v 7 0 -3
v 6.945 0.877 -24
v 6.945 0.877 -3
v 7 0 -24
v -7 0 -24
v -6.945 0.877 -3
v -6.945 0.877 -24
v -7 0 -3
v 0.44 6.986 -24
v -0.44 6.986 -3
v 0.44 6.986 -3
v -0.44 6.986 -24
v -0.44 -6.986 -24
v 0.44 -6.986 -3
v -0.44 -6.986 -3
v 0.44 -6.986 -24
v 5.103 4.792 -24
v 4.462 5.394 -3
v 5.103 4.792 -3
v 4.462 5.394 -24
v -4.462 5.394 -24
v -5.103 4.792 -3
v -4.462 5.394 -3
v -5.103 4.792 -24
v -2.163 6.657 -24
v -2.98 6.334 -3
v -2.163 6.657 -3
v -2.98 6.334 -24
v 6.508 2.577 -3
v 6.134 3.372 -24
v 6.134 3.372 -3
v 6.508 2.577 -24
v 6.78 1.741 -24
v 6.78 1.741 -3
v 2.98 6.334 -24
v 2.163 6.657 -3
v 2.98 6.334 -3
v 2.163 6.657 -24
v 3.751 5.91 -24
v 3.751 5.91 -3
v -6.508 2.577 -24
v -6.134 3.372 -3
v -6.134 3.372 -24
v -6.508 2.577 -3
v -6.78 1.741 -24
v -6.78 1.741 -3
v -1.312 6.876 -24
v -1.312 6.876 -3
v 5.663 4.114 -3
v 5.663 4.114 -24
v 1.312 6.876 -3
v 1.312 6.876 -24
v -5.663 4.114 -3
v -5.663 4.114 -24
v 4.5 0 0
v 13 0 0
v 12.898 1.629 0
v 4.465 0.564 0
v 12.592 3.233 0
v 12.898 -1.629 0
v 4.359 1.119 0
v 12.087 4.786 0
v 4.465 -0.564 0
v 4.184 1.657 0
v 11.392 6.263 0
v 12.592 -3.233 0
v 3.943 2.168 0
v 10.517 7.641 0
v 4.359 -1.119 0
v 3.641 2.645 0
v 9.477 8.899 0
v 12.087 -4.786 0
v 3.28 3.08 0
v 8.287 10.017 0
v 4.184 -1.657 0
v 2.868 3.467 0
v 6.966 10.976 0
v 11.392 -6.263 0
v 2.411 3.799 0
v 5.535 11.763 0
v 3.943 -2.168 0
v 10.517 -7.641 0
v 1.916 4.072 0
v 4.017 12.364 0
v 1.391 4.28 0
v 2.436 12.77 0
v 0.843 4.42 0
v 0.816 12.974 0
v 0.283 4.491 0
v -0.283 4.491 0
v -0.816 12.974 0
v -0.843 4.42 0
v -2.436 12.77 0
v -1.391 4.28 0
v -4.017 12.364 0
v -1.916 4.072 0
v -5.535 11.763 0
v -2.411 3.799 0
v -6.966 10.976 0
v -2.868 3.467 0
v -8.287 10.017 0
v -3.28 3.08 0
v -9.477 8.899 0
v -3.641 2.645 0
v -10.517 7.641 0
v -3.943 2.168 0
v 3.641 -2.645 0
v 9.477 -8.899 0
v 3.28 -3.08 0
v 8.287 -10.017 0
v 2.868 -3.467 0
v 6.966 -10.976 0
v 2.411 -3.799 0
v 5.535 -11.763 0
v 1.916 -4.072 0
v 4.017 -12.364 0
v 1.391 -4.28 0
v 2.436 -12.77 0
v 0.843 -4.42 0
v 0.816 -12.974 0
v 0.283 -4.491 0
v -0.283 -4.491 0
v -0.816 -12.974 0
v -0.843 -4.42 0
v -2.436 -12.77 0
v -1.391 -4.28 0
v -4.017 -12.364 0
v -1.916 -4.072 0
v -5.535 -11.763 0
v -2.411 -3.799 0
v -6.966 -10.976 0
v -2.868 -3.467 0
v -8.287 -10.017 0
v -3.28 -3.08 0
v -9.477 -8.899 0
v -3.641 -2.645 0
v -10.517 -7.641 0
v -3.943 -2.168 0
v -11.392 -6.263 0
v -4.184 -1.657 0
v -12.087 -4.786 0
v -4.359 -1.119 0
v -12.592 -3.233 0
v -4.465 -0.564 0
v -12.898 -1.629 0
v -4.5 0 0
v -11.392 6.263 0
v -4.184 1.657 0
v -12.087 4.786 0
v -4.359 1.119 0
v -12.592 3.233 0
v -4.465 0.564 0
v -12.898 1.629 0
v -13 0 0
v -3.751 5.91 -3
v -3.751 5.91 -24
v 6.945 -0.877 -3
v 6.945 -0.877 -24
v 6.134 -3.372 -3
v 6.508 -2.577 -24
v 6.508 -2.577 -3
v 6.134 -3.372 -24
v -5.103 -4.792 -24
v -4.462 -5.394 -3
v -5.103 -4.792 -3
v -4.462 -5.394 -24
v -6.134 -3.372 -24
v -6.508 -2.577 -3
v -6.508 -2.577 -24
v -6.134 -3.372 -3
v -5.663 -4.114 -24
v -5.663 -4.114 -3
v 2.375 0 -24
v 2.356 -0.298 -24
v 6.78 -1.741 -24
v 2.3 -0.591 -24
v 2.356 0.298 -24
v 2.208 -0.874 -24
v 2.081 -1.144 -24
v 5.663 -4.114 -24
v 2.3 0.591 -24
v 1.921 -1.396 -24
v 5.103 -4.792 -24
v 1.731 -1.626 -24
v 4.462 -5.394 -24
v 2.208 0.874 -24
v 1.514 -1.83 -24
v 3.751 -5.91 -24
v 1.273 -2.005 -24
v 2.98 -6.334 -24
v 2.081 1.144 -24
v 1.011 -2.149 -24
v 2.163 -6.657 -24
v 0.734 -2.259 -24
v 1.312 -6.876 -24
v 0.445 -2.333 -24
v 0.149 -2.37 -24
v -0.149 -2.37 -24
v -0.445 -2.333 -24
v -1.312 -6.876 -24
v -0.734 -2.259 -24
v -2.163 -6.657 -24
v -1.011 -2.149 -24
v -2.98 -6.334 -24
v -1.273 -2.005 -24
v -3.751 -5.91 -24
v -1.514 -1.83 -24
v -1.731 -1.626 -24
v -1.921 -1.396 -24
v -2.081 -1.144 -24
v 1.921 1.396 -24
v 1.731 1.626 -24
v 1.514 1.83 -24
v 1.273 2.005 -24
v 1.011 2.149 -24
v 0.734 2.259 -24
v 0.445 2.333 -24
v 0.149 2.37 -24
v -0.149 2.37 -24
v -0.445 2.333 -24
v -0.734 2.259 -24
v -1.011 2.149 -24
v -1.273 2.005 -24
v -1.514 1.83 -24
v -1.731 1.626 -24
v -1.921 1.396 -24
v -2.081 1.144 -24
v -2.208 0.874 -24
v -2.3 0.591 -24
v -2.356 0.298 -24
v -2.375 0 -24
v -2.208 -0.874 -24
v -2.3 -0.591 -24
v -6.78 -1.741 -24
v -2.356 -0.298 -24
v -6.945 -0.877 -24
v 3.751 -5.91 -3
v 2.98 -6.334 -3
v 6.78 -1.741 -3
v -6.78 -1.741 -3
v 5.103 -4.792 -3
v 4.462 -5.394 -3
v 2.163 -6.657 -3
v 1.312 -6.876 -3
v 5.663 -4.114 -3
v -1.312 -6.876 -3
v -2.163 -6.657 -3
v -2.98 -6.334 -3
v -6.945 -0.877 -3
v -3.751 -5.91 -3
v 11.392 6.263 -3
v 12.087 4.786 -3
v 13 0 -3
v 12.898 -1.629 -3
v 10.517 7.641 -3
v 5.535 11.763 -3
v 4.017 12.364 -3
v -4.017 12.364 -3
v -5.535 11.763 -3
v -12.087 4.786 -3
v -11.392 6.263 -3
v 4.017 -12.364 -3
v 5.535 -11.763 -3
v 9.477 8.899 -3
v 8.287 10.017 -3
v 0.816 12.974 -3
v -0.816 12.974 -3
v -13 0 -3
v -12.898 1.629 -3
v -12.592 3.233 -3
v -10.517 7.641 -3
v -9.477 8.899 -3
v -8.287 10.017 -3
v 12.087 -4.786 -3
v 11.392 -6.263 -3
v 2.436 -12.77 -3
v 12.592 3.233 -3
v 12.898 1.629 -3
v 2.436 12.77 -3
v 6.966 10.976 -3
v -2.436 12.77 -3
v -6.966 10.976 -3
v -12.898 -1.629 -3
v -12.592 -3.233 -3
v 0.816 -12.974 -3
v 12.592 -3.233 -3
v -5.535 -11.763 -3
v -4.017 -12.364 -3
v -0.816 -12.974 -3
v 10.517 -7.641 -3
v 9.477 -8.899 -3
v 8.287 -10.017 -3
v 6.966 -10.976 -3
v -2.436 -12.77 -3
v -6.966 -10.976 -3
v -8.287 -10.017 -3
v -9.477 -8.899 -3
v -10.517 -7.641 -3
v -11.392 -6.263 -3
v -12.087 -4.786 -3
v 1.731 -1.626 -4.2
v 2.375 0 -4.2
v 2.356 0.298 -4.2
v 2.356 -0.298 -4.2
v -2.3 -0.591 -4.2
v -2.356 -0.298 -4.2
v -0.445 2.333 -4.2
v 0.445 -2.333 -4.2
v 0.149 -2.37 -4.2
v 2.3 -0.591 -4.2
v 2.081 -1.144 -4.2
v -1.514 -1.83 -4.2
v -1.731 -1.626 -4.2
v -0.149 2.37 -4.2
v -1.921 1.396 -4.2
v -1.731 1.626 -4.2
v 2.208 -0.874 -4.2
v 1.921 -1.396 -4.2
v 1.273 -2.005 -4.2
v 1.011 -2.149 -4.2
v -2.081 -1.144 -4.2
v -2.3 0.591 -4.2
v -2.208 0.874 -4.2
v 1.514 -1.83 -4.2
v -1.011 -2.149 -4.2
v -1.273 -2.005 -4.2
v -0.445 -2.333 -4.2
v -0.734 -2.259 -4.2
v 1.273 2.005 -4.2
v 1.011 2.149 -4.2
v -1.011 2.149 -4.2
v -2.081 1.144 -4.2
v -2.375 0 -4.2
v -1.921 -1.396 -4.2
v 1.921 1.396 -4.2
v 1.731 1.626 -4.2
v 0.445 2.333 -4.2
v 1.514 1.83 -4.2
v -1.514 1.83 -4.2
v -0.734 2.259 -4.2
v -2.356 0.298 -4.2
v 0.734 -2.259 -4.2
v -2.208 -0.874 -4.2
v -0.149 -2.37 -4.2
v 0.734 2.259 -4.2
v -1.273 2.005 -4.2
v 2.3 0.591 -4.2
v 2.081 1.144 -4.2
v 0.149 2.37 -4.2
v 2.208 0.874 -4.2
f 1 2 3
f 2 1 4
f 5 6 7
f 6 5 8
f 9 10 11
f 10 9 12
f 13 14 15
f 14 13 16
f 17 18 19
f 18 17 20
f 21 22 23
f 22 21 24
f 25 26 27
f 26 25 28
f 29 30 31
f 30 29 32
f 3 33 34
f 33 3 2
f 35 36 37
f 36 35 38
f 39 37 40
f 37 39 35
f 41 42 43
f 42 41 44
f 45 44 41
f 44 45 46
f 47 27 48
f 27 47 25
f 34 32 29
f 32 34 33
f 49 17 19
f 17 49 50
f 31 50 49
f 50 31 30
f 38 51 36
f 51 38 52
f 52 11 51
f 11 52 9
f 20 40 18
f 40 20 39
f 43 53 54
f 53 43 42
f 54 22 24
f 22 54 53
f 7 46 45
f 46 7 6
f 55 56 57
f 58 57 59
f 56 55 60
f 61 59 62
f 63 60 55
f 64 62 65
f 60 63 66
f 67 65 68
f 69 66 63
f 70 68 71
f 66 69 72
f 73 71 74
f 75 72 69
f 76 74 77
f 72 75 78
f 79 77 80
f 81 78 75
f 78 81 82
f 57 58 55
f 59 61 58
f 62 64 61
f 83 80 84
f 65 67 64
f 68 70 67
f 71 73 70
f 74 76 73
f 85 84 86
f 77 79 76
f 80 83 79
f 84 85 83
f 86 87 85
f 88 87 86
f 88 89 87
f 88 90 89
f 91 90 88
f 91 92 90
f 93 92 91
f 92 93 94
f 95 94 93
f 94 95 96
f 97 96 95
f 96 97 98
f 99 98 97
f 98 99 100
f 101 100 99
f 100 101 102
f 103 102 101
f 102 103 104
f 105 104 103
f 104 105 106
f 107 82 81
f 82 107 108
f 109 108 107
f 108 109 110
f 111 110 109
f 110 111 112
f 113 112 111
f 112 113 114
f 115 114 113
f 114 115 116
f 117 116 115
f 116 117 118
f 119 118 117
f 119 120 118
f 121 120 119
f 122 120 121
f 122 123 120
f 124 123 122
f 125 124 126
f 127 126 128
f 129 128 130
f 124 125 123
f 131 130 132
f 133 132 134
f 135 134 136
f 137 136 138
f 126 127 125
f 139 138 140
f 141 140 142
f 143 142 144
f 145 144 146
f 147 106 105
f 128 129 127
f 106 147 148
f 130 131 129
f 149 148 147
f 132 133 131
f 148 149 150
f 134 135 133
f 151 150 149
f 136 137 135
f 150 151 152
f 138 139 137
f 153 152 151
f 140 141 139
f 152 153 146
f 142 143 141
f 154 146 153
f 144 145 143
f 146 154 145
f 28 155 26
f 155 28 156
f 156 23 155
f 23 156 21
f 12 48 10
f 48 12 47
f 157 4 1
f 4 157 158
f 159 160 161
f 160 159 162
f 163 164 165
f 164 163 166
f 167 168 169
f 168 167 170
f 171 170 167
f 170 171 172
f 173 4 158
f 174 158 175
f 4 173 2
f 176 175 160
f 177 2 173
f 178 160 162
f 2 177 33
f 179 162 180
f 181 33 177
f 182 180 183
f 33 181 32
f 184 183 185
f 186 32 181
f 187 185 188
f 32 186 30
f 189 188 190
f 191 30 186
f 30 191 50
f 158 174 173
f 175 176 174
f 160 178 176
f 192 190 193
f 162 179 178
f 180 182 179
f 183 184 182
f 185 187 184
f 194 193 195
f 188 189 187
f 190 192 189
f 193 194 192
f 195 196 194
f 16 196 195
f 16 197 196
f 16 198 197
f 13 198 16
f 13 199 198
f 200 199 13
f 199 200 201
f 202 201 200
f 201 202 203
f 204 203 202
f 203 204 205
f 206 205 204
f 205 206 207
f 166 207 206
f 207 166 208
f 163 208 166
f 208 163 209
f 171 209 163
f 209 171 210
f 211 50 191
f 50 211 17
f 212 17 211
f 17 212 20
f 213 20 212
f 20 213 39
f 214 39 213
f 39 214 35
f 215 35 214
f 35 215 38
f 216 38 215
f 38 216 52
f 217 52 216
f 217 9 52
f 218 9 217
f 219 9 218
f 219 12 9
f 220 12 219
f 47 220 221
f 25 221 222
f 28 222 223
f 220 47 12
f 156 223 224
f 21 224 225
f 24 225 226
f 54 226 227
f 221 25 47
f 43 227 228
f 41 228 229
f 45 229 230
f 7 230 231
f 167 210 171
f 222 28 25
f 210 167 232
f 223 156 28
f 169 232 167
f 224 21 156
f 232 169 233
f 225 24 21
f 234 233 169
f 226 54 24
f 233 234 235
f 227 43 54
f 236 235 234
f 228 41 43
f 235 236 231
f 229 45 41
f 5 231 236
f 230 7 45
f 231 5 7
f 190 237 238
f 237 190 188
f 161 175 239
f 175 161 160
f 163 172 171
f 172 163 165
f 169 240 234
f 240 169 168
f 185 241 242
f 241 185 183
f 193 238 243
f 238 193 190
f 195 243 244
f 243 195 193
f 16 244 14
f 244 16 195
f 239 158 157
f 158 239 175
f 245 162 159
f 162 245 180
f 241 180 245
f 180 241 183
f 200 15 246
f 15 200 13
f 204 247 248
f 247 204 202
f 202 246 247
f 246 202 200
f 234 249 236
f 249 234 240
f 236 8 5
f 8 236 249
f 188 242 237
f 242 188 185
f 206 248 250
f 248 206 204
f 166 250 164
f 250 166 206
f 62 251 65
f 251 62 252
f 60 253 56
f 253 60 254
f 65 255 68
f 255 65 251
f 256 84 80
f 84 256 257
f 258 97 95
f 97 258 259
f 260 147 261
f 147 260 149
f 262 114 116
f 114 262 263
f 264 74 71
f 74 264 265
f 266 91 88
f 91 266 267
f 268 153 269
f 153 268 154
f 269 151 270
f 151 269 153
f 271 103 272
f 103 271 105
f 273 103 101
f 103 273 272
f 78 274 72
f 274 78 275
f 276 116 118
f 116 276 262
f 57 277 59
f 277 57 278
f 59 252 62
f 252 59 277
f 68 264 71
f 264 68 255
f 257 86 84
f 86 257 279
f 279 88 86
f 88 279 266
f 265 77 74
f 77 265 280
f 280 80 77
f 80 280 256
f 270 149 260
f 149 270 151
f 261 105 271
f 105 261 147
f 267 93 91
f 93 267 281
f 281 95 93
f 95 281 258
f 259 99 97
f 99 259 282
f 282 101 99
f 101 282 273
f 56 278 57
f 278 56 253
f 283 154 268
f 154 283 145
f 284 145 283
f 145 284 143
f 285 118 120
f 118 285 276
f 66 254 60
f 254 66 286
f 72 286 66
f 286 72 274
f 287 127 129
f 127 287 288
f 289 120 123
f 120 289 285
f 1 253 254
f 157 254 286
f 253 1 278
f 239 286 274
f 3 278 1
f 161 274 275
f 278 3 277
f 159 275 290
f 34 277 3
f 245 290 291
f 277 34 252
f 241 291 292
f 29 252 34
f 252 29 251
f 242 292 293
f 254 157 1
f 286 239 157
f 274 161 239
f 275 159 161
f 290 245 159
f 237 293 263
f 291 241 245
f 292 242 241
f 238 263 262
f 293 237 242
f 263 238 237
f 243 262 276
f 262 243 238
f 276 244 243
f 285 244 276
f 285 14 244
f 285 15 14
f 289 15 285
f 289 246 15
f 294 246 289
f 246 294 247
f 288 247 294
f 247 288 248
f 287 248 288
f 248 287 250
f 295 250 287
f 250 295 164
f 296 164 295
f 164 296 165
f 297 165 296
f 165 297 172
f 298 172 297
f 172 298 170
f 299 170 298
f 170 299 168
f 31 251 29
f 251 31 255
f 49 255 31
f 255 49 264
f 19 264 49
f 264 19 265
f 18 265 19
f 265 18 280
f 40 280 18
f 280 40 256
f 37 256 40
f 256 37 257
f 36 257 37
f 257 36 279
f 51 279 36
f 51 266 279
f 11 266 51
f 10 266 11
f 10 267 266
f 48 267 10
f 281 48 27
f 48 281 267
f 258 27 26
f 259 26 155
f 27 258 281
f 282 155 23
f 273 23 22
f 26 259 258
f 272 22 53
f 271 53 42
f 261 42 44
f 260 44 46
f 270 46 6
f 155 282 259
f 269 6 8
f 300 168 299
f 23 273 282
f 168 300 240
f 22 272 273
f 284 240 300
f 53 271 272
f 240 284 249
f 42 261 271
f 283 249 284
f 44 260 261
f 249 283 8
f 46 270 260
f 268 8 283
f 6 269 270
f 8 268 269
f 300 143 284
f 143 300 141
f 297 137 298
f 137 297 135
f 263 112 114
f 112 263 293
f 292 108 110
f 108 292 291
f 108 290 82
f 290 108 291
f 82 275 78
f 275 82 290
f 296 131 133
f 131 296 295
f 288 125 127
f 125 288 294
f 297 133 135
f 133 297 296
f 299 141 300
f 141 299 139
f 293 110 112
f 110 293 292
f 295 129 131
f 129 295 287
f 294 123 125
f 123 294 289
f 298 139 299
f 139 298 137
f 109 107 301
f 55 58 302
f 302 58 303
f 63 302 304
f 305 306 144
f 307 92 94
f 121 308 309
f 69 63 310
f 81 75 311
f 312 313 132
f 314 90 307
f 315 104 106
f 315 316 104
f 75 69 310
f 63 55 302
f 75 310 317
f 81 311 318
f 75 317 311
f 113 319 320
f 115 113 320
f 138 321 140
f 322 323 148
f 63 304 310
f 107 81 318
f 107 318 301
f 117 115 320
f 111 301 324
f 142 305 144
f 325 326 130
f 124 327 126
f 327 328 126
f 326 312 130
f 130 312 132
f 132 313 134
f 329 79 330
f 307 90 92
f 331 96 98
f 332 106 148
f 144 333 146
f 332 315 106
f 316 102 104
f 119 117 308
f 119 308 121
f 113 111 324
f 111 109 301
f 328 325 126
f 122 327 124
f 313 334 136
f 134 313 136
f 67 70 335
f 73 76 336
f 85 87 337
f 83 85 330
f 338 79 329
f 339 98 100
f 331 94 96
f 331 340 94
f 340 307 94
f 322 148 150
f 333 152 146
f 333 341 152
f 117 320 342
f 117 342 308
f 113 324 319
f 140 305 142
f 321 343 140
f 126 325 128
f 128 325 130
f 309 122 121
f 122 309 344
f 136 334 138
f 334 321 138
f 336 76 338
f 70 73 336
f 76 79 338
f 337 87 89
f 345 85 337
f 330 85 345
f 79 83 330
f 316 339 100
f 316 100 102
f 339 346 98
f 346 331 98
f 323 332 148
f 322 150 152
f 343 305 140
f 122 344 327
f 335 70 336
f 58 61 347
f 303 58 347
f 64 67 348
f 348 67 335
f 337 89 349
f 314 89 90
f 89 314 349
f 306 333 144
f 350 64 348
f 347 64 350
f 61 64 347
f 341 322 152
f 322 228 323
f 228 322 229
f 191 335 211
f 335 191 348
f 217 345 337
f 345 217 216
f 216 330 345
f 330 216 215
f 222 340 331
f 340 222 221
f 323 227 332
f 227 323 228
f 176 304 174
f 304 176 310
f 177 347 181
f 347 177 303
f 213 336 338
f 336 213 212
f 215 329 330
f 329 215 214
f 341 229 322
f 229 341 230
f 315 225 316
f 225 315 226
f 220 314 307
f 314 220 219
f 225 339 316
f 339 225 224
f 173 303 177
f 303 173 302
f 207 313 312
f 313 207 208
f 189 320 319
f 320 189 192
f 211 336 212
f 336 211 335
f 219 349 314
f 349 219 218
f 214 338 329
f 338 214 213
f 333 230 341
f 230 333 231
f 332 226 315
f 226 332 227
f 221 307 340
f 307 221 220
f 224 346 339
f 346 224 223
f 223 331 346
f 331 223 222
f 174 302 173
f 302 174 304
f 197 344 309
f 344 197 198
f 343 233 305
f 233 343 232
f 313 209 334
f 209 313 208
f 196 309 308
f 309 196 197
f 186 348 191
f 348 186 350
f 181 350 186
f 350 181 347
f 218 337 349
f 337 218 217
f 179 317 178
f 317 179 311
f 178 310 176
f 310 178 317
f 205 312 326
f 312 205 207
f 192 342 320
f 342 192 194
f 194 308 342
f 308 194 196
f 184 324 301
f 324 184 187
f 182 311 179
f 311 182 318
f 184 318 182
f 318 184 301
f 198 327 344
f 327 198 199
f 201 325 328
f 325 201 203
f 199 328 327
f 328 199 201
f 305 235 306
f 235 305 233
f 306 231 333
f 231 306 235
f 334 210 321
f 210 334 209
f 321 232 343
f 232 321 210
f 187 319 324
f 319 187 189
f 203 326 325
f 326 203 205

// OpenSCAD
$fn = 50;


difference() {
	union() {
		translate(v = [0, 0, -24.0000000000]) {
			cylinder(h = 24, r = 7.0000000000);
		}
		translate(v = [0, 0, -3.0000000000]) {
			cylinder(h = 3, r = 13.0000000000);
		}
	}
	union() {
		translate(v = [0, 0, 0]) {
			rotate(a = [0, 0, 0]) {
				difference() {
					union() {
						#translate(v = [0, 0, -24.0000000000]) {
							cylinder(h = 24, r = 2.2500000000);
						}
						#translate(v = [0, 0, -4.2000000000]) {
							cylinder(h = 4.2000000000, r = 7.0000000000, r1 = 2.3750000000, r2 = 4.5000000000);
						}
						#translate(v = [0, 0, -24.0000000000]) {
							cylinder(h = 24, r = 2.3750000000);
						}
						#translate(v = [0, 0, -24.0000000000]) {
							cylinder(h = 24, r = 2.2500000000);
						}
					}
					union();
				}
			}
		}
	}
}
